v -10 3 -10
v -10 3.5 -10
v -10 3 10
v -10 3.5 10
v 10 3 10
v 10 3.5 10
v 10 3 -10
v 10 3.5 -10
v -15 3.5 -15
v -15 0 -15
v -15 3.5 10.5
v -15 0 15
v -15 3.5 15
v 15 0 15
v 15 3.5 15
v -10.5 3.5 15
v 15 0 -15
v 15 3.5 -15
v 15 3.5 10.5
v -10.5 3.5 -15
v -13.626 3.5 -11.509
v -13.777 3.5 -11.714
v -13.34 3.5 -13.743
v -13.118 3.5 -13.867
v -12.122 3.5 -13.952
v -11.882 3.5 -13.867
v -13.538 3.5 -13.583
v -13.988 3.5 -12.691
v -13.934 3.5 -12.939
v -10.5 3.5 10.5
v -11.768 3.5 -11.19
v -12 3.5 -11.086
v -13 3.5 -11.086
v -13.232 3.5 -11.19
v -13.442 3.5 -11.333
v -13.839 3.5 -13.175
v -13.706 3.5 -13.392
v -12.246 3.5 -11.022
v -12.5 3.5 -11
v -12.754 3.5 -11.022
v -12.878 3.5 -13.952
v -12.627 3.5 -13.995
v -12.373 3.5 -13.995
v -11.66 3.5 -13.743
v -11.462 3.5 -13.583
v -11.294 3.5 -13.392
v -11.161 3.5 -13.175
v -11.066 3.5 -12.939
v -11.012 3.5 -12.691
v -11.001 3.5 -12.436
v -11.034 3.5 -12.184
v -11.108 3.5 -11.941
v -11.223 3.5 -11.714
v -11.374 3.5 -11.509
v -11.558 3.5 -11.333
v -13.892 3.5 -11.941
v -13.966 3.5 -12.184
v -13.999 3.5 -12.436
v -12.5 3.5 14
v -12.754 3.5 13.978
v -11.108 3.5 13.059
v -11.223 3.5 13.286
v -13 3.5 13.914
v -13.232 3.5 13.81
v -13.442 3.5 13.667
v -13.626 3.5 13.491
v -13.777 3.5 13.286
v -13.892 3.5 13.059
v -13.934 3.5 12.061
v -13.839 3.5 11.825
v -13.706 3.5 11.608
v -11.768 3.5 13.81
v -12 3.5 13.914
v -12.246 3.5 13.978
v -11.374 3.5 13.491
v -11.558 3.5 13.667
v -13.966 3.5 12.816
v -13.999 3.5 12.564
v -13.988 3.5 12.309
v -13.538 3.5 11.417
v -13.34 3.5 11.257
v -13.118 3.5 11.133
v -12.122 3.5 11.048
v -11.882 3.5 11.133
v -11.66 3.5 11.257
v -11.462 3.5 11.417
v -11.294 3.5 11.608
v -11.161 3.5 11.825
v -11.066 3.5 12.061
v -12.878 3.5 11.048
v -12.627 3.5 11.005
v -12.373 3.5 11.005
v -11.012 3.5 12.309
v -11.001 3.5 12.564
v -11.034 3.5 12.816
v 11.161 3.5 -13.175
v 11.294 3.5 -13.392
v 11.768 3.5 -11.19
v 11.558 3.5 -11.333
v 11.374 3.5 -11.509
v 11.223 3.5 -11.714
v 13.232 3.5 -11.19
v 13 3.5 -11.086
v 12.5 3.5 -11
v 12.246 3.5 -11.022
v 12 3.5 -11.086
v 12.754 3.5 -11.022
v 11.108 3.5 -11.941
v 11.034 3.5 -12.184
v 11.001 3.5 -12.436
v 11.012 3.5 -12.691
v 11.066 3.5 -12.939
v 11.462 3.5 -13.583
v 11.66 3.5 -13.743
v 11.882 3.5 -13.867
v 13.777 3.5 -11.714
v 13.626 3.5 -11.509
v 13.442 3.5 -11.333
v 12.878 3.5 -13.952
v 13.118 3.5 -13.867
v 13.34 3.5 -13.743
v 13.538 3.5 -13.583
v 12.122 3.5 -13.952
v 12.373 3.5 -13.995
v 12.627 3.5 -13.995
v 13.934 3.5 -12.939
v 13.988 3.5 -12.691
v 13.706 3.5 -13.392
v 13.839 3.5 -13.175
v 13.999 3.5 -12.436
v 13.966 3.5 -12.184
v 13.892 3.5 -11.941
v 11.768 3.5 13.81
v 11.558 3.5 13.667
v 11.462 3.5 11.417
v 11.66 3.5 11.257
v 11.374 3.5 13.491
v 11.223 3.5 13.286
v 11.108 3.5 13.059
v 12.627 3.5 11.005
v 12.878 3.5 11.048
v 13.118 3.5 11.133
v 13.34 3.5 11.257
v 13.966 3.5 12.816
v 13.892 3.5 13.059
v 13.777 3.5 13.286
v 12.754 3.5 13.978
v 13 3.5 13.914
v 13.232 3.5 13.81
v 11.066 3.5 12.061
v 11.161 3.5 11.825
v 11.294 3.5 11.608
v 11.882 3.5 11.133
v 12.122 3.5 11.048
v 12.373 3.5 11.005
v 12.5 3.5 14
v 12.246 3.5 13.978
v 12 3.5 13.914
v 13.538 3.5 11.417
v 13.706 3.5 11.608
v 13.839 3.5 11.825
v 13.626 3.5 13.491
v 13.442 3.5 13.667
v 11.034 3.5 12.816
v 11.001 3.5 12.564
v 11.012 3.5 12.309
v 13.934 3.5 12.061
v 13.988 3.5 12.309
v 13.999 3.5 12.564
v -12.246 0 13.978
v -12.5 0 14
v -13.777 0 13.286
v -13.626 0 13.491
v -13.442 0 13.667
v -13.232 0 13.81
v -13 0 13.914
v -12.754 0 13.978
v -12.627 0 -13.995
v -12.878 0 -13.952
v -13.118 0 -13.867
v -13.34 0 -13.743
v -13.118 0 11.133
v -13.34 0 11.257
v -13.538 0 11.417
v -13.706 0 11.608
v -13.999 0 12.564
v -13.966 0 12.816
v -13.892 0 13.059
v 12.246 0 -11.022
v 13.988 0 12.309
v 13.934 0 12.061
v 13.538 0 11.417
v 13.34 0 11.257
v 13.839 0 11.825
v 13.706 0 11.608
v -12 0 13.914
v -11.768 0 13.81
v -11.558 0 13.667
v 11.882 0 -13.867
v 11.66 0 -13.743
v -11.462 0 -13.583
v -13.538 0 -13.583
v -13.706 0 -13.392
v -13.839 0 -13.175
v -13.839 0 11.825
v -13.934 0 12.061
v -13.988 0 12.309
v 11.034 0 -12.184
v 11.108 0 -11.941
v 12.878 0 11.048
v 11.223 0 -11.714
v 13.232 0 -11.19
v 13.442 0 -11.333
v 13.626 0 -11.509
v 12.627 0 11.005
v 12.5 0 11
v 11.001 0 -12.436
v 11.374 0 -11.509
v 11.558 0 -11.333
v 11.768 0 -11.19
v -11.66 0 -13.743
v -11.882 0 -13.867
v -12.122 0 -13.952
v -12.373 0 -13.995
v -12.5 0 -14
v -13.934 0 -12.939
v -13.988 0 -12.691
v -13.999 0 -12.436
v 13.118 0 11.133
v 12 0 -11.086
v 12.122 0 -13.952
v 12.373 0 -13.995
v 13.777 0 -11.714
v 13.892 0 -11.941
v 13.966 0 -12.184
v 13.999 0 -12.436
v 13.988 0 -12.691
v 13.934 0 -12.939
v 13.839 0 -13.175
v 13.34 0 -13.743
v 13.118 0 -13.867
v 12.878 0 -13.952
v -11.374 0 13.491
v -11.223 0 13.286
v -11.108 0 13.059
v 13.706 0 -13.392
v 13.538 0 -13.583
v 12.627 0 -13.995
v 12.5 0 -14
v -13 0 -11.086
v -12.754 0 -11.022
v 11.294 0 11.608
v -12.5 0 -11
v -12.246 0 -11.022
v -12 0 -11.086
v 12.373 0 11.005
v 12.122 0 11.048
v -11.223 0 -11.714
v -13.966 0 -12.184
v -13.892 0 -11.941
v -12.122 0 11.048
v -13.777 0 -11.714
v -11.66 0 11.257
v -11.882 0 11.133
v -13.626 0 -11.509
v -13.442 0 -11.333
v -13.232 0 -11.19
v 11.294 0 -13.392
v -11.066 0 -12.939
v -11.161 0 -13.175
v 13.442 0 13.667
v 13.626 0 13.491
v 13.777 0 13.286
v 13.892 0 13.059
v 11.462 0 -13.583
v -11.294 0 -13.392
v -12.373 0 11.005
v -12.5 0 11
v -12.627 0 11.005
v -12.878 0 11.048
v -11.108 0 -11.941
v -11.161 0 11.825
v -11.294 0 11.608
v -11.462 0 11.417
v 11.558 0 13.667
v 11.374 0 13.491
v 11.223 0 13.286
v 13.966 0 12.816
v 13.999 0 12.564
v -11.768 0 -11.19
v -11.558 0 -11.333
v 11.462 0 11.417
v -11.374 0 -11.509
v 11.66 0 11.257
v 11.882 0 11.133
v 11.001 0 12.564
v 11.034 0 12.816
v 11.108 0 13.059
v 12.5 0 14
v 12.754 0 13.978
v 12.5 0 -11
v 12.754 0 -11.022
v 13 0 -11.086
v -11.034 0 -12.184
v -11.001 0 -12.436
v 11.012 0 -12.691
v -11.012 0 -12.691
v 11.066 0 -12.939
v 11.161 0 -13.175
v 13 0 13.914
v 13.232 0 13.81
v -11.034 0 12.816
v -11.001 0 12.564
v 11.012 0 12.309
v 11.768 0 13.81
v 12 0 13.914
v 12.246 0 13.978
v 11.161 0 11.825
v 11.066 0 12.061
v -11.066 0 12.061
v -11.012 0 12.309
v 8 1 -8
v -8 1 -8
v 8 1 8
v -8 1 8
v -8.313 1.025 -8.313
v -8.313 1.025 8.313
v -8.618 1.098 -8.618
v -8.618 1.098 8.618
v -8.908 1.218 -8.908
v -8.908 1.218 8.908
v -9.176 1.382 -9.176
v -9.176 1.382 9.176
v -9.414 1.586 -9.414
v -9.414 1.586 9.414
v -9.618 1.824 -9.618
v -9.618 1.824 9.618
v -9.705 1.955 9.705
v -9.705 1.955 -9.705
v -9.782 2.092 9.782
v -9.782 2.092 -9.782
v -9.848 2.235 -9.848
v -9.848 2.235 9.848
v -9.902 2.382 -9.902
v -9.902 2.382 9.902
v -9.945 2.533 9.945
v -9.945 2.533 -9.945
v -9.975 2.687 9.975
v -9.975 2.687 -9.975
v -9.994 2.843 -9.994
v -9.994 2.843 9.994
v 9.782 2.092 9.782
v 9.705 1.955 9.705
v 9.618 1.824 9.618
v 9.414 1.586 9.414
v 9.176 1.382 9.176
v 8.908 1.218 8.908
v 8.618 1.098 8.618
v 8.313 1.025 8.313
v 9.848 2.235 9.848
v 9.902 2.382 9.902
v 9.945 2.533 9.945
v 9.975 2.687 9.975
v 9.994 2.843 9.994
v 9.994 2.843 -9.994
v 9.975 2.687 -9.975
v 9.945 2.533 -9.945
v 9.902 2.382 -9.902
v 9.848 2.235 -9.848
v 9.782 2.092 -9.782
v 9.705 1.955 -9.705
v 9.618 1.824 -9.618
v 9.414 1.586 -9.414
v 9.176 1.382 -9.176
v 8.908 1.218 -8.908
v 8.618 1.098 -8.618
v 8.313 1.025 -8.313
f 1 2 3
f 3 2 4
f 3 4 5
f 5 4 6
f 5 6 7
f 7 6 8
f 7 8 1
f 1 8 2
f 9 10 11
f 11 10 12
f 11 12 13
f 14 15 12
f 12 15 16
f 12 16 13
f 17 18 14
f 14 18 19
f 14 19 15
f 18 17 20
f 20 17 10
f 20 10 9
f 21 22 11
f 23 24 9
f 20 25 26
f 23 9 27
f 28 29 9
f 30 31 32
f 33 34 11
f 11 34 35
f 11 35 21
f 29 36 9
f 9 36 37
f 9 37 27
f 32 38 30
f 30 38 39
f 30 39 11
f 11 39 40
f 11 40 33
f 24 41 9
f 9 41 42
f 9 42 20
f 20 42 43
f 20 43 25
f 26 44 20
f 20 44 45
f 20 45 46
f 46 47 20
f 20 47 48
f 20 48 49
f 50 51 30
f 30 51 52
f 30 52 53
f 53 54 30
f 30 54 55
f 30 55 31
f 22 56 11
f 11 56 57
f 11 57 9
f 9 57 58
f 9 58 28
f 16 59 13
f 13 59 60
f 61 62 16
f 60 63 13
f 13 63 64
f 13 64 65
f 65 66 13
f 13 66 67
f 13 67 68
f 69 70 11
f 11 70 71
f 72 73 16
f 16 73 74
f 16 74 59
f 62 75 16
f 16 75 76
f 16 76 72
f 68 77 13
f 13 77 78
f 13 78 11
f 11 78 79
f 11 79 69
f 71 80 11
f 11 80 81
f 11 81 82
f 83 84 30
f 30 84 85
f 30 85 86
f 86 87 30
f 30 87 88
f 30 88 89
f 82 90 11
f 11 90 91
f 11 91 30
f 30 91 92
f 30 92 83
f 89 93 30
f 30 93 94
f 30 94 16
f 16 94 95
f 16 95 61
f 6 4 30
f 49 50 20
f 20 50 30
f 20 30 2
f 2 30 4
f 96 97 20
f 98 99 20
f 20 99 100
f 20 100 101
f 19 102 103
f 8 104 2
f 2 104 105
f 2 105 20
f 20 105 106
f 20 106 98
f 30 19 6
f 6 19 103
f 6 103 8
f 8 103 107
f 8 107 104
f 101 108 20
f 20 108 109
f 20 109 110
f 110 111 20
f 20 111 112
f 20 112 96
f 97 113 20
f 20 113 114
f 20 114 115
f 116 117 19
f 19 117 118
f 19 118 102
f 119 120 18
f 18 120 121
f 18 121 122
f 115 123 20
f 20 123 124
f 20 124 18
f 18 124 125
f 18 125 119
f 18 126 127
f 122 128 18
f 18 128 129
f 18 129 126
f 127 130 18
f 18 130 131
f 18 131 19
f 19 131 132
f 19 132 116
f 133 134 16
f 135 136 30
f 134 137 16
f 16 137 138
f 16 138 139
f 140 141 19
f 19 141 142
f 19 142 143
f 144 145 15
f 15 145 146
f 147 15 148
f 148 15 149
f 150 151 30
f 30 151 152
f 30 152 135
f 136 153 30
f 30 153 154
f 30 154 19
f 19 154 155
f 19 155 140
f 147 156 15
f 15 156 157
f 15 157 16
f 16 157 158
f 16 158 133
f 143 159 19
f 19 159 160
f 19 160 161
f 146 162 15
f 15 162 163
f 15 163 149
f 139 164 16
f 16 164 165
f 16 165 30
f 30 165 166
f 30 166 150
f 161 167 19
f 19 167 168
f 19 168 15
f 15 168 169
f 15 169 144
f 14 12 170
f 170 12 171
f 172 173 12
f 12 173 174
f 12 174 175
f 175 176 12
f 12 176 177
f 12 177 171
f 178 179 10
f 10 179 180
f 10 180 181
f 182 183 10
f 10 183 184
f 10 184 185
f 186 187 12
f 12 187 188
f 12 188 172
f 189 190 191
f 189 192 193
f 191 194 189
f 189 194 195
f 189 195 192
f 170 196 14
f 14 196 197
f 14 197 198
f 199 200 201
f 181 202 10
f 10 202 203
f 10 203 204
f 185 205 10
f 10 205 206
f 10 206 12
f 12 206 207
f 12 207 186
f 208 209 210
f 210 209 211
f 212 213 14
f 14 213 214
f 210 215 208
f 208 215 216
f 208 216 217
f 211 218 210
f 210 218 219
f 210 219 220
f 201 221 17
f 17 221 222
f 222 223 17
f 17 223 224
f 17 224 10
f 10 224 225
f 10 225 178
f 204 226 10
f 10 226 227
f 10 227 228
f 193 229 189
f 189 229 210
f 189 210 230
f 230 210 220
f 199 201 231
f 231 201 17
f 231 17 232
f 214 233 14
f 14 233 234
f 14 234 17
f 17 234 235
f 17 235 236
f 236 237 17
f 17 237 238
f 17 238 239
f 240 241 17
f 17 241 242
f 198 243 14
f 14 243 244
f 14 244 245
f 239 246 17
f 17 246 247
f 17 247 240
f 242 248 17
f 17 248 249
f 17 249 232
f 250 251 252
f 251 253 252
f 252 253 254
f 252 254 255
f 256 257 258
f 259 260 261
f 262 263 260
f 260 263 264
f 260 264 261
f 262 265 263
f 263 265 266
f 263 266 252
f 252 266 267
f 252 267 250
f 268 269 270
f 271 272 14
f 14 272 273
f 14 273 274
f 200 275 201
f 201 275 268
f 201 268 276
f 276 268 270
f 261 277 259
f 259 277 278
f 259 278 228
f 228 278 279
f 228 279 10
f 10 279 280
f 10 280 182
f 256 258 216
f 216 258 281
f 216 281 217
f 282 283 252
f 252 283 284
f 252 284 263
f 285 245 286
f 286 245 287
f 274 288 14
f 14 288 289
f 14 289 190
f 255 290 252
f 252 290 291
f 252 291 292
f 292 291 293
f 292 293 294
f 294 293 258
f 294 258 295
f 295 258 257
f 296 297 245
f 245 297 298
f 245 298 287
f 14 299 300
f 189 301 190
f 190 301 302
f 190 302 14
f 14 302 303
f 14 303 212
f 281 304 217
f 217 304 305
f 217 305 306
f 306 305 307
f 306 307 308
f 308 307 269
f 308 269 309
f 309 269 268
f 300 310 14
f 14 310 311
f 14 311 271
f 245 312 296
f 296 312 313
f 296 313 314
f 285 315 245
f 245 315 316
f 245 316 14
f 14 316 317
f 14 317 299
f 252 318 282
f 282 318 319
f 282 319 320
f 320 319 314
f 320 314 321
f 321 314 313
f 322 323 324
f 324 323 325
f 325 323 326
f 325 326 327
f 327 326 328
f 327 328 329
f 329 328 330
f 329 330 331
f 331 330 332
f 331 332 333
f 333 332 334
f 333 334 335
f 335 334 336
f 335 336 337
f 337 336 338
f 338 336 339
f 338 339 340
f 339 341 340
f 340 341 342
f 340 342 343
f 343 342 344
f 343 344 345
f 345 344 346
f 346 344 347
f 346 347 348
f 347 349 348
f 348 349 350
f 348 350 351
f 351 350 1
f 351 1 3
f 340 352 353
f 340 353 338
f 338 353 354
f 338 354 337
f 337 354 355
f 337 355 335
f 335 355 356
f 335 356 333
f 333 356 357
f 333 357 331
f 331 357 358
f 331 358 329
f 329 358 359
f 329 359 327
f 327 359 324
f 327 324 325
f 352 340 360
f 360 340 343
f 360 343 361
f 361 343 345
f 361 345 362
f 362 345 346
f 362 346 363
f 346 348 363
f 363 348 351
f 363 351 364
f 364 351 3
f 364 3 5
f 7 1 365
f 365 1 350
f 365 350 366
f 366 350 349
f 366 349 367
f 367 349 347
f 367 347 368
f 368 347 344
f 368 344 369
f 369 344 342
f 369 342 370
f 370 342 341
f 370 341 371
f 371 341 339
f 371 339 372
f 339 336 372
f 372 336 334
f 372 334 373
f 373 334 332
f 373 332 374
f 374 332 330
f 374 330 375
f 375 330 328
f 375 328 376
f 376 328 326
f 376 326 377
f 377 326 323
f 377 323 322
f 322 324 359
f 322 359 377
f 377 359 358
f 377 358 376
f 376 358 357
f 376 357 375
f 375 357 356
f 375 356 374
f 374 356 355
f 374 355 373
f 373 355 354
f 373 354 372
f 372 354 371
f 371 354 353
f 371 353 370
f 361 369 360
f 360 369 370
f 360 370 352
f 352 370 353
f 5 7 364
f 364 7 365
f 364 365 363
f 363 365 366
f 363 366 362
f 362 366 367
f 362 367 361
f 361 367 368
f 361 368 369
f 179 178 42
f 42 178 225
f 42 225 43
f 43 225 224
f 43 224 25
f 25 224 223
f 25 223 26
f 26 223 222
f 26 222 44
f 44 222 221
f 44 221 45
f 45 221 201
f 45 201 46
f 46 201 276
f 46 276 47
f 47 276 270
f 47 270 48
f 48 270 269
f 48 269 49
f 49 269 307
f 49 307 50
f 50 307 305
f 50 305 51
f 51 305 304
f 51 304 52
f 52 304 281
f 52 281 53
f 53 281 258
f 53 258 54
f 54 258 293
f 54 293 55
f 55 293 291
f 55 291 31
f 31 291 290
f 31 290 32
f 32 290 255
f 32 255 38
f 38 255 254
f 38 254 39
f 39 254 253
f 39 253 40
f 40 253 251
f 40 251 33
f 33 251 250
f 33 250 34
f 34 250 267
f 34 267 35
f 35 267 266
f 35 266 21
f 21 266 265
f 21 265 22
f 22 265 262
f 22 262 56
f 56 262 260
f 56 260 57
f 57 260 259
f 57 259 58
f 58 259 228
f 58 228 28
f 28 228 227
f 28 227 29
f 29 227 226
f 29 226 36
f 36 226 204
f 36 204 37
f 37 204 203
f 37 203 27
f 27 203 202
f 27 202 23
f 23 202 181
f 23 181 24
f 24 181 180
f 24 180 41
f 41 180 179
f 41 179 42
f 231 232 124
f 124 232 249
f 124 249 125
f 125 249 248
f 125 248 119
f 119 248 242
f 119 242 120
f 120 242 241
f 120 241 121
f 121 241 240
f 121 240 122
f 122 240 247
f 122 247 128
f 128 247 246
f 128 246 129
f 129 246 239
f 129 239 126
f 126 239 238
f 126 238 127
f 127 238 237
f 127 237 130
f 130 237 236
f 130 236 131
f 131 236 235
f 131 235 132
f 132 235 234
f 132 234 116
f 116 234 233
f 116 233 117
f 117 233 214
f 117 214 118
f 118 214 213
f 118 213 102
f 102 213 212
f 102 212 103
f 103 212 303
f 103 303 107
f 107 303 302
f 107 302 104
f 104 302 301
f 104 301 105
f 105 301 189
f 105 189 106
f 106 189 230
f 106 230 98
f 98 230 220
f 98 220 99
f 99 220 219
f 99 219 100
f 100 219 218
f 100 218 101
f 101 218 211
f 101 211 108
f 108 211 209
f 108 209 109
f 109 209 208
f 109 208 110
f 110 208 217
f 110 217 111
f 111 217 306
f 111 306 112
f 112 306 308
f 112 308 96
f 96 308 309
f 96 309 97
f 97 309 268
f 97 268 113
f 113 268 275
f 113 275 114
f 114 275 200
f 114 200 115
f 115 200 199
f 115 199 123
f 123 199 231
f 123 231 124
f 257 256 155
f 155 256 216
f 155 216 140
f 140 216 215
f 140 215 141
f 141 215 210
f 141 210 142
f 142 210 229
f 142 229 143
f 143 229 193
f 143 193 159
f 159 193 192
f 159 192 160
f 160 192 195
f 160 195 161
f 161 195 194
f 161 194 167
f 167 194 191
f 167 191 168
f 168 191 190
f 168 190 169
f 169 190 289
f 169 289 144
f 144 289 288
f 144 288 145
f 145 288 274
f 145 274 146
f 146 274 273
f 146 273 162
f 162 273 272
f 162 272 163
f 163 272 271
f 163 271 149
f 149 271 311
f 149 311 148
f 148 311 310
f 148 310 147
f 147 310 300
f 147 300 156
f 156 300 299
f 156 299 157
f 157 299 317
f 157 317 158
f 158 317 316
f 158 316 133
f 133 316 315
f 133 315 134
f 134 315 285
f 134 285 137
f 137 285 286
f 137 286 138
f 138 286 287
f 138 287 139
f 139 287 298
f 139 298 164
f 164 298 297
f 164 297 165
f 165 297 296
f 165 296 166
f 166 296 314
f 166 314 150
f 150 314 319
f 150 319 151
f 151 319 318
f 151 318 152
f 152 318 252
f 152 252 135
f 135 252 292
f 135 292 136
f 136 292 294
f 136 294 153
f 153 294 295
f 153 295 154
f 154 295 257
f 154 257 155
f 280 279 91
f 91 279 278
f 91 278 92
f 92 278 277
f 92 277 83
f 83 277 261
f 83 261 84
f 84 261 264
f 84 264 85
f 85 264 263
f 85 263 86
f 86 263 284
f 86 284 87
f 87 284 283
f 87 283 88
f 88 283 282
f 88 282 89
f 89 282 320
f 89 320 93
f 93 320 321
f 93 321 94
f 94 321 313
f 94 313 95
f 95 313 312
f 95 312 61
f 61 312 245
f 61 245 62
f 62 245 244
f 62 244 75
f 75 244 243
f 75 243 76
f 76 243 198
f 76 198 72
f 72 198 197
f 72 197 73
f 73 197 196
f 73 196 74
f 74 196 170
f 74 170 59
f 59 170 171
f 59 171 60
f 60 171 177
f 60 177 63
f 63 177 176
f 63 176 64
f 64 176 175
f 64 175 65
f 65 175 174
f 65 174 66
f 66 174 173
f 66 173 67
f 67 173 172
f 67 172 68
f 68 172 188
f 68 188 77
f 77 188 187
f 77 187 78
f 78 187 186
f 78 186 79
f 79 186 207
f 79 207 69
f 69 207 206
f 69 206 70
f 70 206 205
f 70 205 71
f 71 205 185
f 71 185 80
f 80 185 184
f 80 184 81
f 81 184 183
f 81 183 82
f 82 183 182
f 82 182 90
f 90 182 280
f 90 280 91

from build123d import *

# Parameters (mm, degrees)
SKETCH2_W           = 30
SKETCH2_H           = 30
SKETCH2_W_2         = 20
SKETCH2_H_2         = 20
BOSS_EXTRUDE2_DEPTH = 3.5
SKETCH2_4_W         = 20
SKETCH2_4_H         = 20
BOSS_EXTRUDE3_DEPTH = 1
FILLET1_R           = 2
CUT_EXTRUDE1_DEPTH  = 4


with BuildPart() as part:
    # Sketch2 → Boss-Extrude2 (new body)
    with BuildSketch(Plane(origin=(0, 0, 0), x_dir=(1, 0, 0), z_dir=(0, 1, 0))):
        Rectangle(SKETCH2_W, SKETCH2_H)
        Rectangle(SKETCH2_W_2, SKETCH2_H_2, mode=Mode.SUBTRACT)
    extrude(amount=BOSS_EXTRUDE2_DEPTH)

    # Sketch2<4> → Boss-Extrude3 (add)
    with BuildSketch(Plane(origin=(0, 0, 0), x_dir=(1, 0, 0), z_dir=(0, 1, 0))):
        Rectangle(SKETCH2_4_W, SKETCH2_4_H)
    extrude(amount=BOSS_EXTRUDE3_DEPTH)

    # Fillet1
    fillet1_edges = [part.edges().sort_by_distance(p)[0] for p in [
        (-10, 1, 0),
        (0, 1, -10),
        (0, 1, 10),
        (10, 1, 0),
    ]]
    fillet(fillet1_edges, radius=FILLET1_R)

    # Sketch6 → Cut-Extrude1 (cut)
    with BuildSketch(Plane(origin=(0, 3.5, 0), x_dir=(1, 0, 0), z_dir=(0, 1, 0))):
        with BuildLine():
            ThreePointArc((-13.560660172, 13.560660172), (-13.560660172, 11.439339828), (-11.439339828, 11.439339828))
            Line((-11.439339828, 11.439339828), (-13.560660172, 13.560660172))
        make_face()
        with BuildLine():
            Line((-13.560660172, 13.560660172), (-11.439339828, 11.439339828))
            ThreePointArc((-11.439339828, 11.439339828), (-11.114180701, 11.925974851), (-11, 12.5))
            ThreePointArc((-11, 12.5), (-11.925974851, 13.885819299), (-13.560660172, 13.560660172))
        make_face()
        with BuildLine():
            ThreePointArc((13.560660172, 13.560660172), (11.439339828, 13.560660172), (11.439339828, 11.439339828))
            Line((11.439339828, 11.439339828), (13.560660172, 13.560660172))
        make_face()
        with BuildLine():
            Line((13.560660172, 13.560660172), (11.439339828, 11.439339828))
            ThreePointArc((11.439339828, 11.439339828), (13.074025149, 11.114180701), (14, 12.5))
            ThreePointArc((14, 12.5), (13.885819299, 13.074025149), (13.560660172, 13.560660172))
        make_face()
        with BuildLine():
            ThreePointArc((14, -12.5), (13.074025149, -11.114180701), (11.439339828, -11.439339828))
            Line((11.439339828, -11.439339828), (13.560660172, -13.560660172))
            ThreePointArc((13.560660172, -13.560660172), (13.885819299, -13.074025149), (14, -12.5))
        make_face()
        with BuildLine():
            Line((13.560660172, -13.560660172), (11.439339828, -11.439339828))
            ThreePointArc((11.439339828, -11.439339828), (11.439339828, -13.560660172), (13.560660172, -13.560660172))
        make_face()
        with BuildLine():
            ThreePointArc((-11, -12.5), (-11.114180701, -11.925974851), (-11.439339828, -11.439339828))
            Line((-11.439339828, -11.439339828), (-13.560660172, -13.560660172))
            ThreePointArc((-13.560660172, -13.560660172), (-11.925974851, -13.885819299), (-11, -12.5))
        make_face()
        with BuildLine():
            Line((-13.560660172, -13.560660172), (-11.439339828, -11.439339828))
            ThreePointArc((-11.439339828, -11.439339828), (-13.560660172, -11.439339828), (-13.560660172, -13.560660172))
        make_face()
    extrude(amount=-CUT_EXTRUDE1_DEPTH, mode=Mode.SUBTRACT)


solid = part.part
